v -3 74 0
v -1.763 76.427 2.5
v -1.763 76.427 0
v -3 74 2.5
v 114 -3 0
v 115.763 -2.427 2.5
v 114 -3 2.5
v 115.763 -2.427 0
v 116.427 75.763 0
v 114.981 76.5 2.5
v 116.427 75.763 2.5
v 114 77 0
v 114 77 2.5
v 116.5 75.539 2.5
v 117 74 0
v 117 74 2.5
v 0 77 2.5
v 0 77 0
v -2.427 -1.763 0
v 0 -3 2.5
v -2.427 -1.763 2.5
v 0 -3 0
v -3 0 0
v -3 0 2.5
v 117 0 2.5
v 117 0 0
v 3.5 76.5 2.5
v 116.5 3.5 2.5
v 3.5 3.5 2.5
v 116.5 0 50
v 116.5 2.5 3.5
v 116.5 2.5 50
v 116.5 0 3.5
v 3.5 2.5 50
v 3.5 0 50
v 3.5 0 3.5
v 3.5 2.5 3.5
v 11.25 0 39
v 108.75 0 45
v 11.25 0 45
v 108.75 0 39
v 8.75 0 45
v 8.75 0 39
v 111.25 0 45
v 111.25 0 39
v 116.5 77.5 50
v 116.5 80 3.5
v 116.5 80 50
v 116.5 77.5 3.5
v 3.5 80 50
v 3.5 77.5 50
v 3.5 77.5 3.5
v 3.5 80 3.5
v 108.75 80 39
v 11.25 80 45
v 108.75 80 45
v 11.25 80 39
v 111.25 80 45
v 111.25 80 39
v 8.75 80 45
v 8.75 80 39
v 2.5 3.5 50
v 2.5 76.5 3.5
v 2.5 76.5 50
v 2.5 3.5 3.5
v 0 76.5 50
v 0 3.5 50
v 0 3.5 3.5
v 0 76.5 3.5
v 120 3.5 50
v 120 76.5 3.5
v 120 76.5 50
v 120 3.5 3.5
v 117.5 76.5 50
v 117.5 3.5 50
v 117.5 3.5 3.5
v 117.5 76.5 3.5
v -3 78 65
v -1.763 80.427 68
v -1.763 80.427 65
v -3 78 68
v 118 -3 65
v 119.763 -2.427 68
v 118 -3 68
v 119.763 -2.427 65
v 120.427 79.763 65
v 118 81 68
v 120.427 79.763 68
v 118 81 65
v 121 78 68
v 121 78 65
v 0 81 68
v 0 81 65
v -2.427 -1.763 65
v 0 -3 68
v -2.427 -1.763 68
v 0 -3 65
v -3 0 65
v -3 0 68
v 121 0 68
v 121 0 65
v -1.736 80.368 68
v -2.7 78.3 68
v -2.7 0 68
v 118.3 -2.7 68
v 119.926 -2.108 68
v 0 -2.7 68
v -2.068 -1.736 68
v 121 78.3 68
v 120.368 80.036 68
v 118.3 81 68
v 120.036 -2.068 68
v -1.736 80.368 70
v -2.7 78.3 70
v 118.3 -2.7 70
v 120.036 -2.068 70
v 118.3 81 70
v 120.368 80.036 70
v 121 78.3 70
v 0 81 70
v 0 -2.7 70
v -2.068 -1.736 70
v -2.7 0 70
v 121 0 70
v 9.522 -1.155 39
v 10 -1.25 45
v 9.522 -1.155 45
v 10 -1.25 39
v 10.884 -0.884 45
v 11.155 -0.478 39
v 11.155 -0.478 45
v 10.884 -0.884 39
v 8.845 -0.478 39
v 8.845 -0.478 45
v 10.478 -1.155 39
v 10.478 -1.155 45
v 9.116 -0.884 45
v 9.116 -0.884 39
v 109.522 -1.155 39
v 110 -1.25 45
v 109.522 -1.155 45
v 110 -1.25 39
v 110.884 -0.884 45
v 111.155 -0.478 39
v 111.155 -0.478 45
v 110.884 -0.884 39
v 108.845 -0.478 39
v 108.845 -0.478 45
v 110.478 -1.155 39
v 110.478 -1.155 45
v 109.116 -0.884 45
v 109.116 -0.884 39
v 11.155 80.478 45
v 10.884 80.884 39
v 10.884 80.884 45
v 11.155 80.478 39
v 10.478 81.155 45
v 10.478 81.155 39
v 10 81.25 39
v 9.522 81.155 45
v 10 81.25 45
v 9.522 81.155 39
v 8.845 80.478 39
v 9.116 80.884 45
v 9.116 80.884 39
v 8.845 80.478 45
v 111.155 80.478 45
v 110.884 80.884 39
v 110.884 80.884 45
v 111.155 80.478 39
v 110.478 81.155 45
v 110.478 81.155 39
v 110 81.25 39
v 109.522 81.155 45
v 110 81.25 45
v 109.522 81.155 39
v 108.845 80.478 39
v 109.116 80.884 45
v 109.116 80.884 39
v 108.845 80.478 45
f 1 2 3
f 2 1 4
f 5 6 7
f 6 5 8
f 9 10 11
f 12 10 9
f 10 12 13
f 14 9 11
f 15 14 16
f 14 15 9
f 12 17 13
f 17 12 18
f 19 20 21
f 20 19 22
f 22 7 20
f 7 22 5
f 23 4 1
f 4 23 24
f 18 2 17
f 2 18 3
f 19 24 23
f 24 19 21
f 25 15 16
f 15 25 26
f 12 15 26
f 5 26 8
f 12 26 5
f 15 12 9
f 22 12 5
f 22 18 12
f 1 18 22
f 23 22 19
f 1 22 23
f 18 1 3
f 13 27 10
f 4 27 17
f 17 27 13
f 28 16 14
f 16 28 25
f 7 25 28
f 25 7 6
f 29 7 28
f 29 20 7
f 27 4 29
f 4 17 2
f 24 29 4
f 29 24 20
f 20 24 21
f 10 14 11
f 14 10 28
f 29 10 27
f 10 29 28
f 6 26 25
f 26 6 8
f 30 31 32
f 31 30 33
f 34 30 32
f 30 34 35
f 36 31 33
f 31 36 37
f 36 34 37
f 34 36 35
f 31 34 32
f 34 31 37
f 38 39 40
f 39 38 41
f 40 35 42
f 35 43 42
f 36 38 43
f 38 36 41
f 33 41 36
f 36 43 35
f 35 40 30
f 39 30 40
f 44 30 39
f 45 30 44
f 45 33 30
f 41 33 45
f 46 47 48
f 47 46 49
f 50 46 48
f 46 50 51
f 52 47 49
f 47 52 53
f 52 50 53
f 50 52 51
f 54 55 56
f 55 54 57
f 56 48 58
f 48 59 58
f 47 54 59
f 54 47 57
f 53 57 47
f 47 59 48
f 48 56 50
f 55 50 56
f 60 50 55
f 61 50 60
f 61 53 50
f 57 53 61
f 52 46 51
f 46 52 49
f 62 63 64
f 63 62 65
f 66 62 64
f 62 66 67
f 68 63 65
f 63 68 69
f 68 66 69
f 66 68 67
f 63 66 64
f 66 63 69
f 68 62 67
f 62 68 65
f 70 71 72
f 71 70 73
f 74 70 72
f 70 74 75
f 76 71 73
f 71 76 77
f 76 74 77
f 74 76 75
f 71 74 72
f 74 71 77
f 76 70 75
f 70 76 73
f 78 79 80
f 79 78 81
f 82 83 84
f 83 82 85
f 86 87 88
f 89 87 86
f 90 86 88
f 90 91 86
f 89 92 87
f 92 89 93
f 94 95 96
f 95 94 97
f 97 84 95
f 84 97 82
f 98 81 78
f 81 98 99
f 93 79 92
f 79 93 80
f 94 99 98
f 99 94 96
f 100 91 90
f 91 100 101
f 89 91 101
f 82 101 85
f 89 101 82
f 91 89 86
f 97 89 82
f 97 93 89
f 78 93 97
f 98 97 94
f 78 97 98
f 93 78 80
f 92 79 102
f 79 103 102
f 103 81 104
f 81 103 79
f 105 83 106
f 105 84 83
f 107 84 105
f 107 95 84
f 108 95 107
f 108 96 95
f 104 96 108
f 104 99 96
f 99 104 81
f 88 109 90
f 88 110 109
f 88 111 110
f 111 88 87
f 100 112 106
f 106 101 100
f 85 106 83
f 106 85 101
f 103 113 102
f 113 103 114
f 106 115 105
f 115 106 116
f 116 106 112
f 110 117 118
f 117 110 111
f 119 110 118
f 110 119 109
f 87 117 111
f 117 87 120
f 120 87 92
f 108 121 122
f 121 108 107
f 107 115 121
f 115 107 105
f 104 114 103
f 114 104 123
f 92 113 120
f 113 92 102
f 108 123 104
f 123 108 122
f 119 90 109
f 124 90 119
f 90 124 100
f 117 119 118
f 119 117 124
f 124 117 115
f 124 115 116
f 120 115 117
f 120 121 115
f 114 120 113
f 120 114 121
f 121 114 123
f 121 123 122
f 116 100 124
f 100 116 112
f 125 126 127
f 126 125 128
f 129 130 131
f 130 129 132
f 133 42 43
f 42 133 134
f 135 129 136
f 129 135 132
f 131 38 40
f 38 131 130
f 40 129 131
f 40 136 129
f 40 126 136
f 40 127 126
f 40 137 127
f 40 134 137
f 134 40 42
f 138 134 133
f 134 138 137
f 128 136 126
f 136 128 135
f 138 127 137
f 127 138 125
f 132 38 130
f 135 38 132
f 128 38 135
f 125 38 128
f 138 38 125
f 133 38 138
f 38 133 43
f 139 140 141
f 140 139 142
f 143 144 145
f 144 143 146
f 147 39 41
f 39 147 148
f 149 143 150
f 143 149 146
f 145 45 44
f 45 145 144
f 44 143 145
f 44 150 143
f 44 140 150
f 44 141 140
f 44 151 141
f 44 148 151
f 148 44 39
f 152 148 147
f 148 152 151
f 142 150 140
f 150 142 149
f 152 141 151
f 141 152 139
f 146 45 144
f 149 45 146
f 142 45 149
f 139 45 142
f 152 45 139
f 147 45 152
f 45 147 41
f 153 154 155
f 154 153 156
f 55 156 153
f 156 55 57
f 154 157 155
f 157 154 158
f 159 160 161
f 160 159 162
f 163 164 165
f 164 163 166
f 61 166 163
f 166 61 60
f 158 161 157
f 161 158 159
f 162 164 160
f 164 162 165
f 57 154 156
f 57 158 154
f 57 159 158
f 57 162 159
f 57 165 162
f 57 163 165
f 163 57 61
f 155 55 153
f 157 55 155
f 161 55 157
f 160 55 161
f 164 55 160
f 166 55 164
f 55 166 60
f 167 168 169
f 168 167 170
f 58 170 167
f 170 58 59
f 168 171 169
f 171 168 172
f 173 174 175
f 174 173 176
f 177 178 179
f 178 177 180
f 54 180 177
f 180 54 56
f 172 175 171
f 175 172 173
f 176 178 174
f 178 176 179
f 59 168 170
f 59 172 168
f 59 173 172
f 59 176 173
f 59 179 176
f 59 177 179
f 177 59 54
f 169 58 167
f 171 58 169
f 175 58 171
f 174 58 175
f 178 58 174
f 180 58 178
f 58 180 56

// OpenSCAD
// Parametrisk låda med lock - CAD-klar
// Alla parametrar synliga i Customizer

// === Huvuddimensioner ===
length    = 120;   // [50:1:200]    Längd (mm)
width     = 80;    // [40:1:150]    Bredd (mm)
height    = 50;    // [20:1:120]    Höjd (mm)

// === Vägg = tjocklek ===
wall      = 2.5;   // [1:0.5:6]    Vägg tjocklek (mm)

// === Lock ===
lid_thick = 3;     // [1.5:0.5:6]    Lock tjocklek (mm)
lip       = 2;     // [0:0.5:4]      Lock överblick (mm)
gap       = 0.3;   // [0:0.05:1]    Passform gap (mm)

// === Hörn ===
fillet    = 3;     // [0:0.5:10]    Utvändigt fillet (mm)
chamfer   = 1;     // [0:0.25:3]    Invändig kantsläpning (mm)

// === Extra ===
hinge_hole= 6;     // [4:1:10]      Hångelhål diameter (mm)
label     = "Min Låda";

// ============================================
// HELPER MODULES
// ============================================

module rounded_base(w, d, h, r) {
    if (r > 0) {
        hull() {
            translate([r, r, 0]) cylinder(h, r, r, center=false);
            translate([w-r, r, 0]) cylinder(h, r, r, center=false);
            translate([r, d-r, 0]) cylinder(h, r, r, center=false);
            translate([w-r, d-r, 0]) cylinder(h, r, r, center=false);
        }
    } else {
        cube([w, d, h], center=false);
    }
}

module rounded_rect_extrude(w, d, h, r) {
    linear_extrude(height=h, center=false) {
        if (r > 0) {
            offset(r)
                square([w-2*r, d-2*r], center=false);
        } else {
            square([w, d], center=false);
        }
    }
}

// ============================================
// BODYPARTS
// ============================================

module bottom() {
    difference() {
        // Yttre
        rounded_rect_extrude(length, width, wall, fillet);

        // Inre (hollow)
        if (fillet > wall + chamfer) {
            translate([wall+chamfer, wall+chamfer, wall])
                rounded_rect_extrude(
                    length - 2*(wall+chamfer),
                    width - 2*(wall+chamfer),
                    height - wall - chamfer,
                    max(0, fillet - wall - chamfer)
                );
        } else {
            translate([wall+chamfer, wall+chamfer, wall])
                cube([
                    length - 2*(wall+chamfer),
                    width - 2*(wall+chamfer),
                    height - wall - chamfer
                ], center=false);
        }
    }
}

module walls() {
    front_y = 0;
    back_y  = width - wall;
    left_x  = 0;
    right_x = length - wall;

    // 4 väggar
    color("lightsteelblue")
    union() {
        // Front
        translate([wall + chamfer, front_y, wall + chamfer])
            cube([length - 2*(wall+chamfer), wall, height - wall - chamfer]);
        // Back
        translate([wall + chamfer, back_y, wall + chamfer])
            cube([length - 2*(wall+chamfer), wall, height - wall - chamfer]);
        // Left (between front/back)
        translate([left_x, wall + chamfer, wall + chamfer])
            cube([wall, width - 2*(wall+chamfer), height - wall - chamfer]);
        // Right (between front/back)
        translate([right_x, wall + chamfer, wall + chamfer])
            cube([wall, width - 2*(wall+chamfer), height - wall - chamfer]);
    }
}

module lid() {
    diff = gap;

    color("wheat")
    difference() {
        // Yttre lock
        union() {
            rounded_rect_extrude(length + 2*lip, width + 2*lip, lid_thick, fillet);

            // Lip som hänger över lådan
            translate([0, 0, lid_thick])
                rounded_rect_extrude(length + 2*lip - diff, width + 2*lip - diff, lip, max(0, fillet - diff));
        }

        // Inre av lock (halv-hollow)
        if (lid_thick > wall + chamfer) {
            translate([
                wall + chamfer + lip - diff,
                wall + chamfer + lip - diff,
                0
            ])
            rounded_rect_extrude(
                length + 2*lip - 2*(wall+chamfer) - 2*diff,
                width + 2*lip - 2*(wall+chamfer) - 2*diff,
                lid_thick - chamfer,
                max(0, fillet - wall - chamfer - diff)
            );
        }
    }
}

module hinges() {
    hinge_y_front = 5;
    hinge_y_back  = width - 5 - hinge_hole;
    hinge_z       = height - 8;
    offset_x      = 10;

    color("gray")
    union() {
        // Vänster
        translate([offset_x, 0, hinge_z])
            cylinder(h=hinge_hole, r=wall/2, center=true, $fn=16);
        translate([length-offset_x, 0, hinge_z])
            cylinder(h=hinge_hole, r=wall/2, center=true, $fn=16);
        // Höger
        translate([offset_x, width, hinge_z])
            cylinder(h=hinge_hole, r=wall/2, center=true, $fn=16);
        translate([length-offset_x, width, hinge_z])
            cylinder(h=hinge_hole, r=wall/2, center=true, $fn=16);
    }
}

// ============================================
// ASSEMBLY
// ============================================

color("SaddleBrown")
bottom();

color("lightsteelblue")
walls();

// Lock flyttad uppåt för visning
translate([0, 0, height + lid_thick + lip + 10])
lid();

// Hängslen på baksidan
translate([0, 0, 0])
hinges();
